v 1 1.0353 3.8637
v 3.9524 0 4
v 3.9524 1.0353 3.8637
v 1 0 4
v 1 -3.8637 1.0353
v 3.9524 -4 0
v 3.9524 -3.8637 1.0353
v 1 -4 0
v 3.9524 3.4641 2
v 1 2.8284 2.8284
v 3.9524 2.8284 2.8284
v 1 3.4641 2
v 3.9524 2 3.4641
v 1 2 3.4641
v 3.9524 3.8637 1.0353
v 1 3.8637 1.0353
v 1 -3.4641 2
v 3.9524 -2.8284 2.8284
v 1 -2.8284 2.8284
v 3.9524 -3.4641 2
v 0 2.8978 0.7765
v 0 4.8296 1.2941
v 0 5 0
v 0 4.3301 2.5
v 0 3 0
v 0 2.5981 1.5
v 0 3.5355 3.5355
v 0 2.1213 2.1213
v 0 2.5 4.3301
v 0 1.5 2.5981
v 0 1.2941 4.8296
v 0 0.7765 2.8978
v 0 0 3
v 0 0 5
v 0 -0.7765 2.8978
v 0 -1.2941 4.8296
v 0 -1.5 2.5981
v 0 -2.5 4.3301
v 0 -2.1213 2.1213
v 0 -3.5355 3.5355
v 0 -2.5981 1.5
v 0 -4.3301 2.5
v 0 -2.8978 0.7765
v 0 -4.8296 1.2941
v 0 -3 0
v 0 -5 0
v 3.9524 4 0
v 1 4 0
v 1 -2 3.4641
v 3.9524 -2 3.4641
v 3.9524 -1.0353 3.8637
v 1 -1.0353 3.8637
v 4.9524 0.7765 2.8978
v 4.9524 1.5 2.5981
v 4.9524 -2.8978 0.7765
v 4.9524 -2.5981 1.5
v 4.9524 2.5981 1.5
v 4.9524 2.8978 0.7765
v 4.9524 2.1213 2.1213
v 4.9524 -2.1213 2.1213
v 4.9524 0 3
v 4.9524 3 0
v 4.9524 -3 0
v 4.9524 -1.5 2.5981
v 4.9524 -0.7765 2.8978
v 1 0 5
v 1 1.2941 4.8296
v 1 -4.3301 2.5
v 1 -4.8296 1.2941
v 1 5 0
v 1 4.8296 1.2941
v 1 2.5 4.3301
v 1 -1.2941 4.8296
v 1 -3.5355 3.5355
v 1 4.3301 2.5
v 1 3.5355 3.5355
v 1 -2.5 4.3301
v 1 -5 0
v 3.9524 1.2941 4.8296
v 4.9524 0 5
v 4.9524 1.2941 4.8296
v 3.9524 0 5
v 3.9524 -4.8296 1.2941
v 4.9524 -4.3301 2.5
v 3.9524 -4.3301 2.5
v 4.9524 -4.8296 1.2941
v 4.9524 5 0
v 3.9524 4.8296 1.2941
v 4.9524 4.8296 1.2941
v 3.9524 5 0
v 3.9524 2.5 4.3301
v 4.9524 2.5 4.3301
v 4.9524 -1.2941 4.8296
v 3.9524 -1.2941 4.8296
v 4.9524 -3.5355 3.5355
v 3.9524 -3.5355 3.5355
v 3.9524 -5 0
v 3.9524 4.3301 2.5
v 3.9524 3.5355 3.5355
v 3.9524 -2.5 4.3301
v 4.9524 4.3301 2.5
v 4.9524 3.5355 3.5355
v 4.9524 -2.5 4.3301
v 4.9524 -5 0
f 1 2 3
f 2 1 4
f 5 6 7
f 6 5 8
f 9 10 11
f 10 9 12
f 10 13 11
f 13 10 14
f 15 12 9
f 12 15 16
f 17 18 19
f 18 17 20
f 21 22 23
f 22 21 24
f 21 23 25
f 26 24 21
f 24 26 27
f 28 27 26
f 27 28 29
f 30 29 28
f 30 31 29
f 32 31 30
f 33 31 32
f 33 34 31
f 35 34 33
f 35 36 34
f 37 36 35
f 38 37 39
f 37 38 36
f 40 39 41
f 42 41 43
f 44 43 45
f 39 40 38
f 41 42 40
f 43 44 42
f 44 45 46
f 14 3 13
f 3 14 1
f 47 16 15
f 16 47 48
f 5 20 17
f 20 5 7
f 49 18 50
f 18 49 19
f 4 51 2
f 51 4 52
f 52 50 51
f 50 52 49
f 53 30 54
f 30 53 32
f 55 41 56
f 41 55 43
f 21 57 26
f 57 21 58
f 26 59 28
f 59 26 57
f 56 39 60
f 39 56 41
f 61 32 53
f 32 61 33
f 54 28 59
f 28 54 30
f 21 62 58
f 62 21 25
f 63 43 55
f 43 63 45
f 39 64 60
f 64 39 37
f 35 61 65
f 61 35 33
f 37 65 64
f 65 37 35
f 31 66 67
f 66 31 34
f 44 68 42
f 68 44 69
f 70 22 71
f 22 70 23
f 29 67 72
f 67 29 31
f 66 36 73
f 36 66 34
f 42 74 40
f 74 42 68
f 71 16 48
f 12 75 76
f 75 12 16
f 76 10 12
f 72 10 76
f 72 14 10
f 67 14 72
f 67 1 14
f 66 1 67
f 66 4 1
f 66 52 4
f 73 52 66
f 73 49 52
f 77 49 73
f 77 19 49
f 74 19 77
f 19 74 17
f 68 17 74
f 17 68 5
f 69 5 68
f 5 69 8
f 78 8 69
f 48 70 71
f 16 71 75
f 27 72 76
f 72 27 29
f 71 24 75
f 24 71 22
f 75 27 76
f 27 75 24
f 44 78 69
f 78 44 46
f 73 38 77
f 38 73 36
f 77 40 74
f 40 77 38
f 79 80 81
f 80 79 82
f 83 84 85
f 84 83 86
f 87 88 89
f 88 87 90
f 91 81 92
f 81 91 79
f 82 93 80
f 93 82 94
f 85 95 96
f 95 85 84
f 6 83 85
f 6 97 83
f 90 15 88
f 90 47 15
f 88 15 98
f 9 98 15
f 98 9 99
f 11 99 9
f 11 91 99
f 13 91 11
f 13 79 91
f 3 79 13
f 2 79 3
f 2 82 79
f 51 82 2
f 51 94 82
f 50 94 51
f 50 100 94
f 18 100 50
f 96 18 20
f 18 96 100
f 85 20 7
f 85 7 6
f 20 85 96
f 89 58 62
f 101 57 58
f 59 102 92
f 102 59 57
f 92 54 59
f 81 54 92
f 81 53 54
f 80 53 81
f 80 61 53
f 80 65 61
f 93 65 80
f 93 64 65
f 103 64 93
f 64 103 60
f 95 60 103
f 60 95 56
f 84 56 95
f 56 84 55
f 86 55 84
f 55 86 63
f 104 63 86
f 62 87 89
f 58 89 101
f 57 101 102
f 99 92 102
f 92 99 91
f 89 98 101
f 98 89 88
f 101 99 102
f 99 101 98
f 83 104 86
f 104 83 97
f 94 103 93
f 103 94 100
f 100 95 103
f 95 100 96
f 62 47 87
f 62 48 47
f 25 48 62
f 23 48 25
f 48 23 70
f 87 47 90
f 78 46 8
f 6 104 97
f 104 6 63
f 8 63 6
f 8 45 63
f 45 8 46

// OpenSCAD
// file: ../build_environments.scad
// build_environments.scad: modules to build level sections
//

module pool(diameter=10.0, wall_height=2.0, step_width=3.0, connections=[])
{
    difference() {
        union() {
        difference() {
            cylinder(h=0.5,r1=diameter+step_width,r2=diameter+step_width,$fn=48);
            translate([0,0,-0.1])
                cylinder(h=0.7,r1=diameter,r2=diameter,$fn=48);
        }
        difference() {
            cylinder(h=wall_height,r1=diameter+step_width+1.0,r2=diameter+step_width+1.0,$fn=48);
            translate([0,0,-0.1])
                cylinder(h=wall_height+0.2,r1=diameter+step_width,r2=diameter+step_width,$fn=48);
        }
        }
    
        for (c = connections)
        {
            rotate([0,90,0]) {
                angle = atan2(c[1],c[0]);
                rotate([-angle,0,0]) {
                    cylinder(h=diameter+5.0,r1=c[2],r2=c[2],$fn=48);
                }
            }
        }
    }
}

module straight(length=10.0, width=2.0, dy1=0.0, dy2=0.0, dz=0.0)
{
    dims = [0, 0, 0, 0, 0, (dz/length)];
    matrix = [
        [ 1, dims[0], dims[1], 0 ],
        [ dims[2], 1, dims[4], 0 ],
        [ dims[5], dims[3], 1, 0 ],
        [ 0, 0, 0, 1 ]
    ];
    multmatrix(matrix)
    difference() {
        translate([dy1,0,0])
        union() {
            rotate([0,90,0]) {
                difference() {
                    cylinder(h=(length-dy1-dy2),r1=width+1.0,r2=width+1.0,$fn=24);
                    translate([0,0,-0.1])
                        cylinder(h=(length-dy1-dy2+0.2),r1=width,r2=width,$fn=24);
                }
                difference() {
                    cylinder(h=1.0,r1=width+2.0,r2=width+2.0,$fn=24);
                    translate([0,0,-0.1])
                        cylinder(h=1.2,r1=width,r2=width,$fn=24);
                }
                translate([0,0,(length-dy1-dy2)-1.0]) {
                    difference() {
                        cylinder(h=1.0,r1=width+2.0,r2=width+2.0,$fn=24);
                        translate([0,0,-0.1])
                            cylinder(h=1.2,r1=width,r2=width,$fn=24);
                    }
                }
            }
        }
        translate([0,0,-(2*width+4.0)/2])
            cube([3*length,3*length,2*width+4.0],center=true);
    }
}

module curve(p0=[0,0], center=[0,0], dir=1, angle=0.0, width=2.0)
{
    radius = sqrt((p0[0]-center[0])*(p0[0]-center[0]) + (p0[1]-center[1])*(p0[1]-center[1]));
    if (dir == 0) {
        difference() {
            rotate([0,0,-90])
            difference() {
                rotate_extrude(angle = angle, convexity = 10, $fn=32)
                    translate([radius, 0, 0])
                        circle(r = width+1.0,$fn=24);
                rotate([0,0,-1.0])
                    rotate_extrude(angle = angle+2.0, convexity = 10, $fn=32)
                        translate([radius, 0, 0])
                            circle(r = width,$fn=24);
            }
            translate([0,0,-(2*width+4.0)/2])
                cube([5*radius,5*radius,2*width+4.0],center=true);
        }
    }
    else {
        difference() {
            rotate([0,0,90])
            difference() {
                rotate_extrude(angle = -angle, convexity = 10, $fn=32)
                    translate([radius, 0, 0])
                        circle(r = width+1.0,$fn=24);
                rotate([0,0,1.0])
                    rotate_extrude(angle = -angle-2.0, convexity = 10, $fn=32)
                        translate([radius, 0, 0])
                            circle(r = width,$fn=24);
            }
            translate([0,0,-(2*width+4.0)/2])
                cube([5*radius,5*radius,2*width+4.0],center=true);
        }
    }

}

// test pool
//pool(diameter=12.0000, wall_height=3.0000, step_width=3.0000, connections=[[0.0000,-26.0000,2.0000], [23.6074,0.0000,2.0000]]);

// test straight, slope
//straight(length=26.0000, width=2.0000, dy1=11.8322, dy2=6.7082, dz=0.0000);
//straight(length=29.1549, width=12.0000, dy1=0.0000, dy2=0.0000, dz=-15.0000);

// test curve
//curve(p0=[23.6074, 0.0000], center=[23.6074, 5.0000], dir=0, angle=60.1011, width=2.0000);
//curve(p0=[33.6426, 12.4219], center=[37.9771, 9.9295], dir=1, angle=120.4627, width=2.0000);
// main file
use <../build_environments.scad>;
straight(length=4.9524, width=3.0000, dy1=0.0000, dy2=0.0000, dz=0.0000);
